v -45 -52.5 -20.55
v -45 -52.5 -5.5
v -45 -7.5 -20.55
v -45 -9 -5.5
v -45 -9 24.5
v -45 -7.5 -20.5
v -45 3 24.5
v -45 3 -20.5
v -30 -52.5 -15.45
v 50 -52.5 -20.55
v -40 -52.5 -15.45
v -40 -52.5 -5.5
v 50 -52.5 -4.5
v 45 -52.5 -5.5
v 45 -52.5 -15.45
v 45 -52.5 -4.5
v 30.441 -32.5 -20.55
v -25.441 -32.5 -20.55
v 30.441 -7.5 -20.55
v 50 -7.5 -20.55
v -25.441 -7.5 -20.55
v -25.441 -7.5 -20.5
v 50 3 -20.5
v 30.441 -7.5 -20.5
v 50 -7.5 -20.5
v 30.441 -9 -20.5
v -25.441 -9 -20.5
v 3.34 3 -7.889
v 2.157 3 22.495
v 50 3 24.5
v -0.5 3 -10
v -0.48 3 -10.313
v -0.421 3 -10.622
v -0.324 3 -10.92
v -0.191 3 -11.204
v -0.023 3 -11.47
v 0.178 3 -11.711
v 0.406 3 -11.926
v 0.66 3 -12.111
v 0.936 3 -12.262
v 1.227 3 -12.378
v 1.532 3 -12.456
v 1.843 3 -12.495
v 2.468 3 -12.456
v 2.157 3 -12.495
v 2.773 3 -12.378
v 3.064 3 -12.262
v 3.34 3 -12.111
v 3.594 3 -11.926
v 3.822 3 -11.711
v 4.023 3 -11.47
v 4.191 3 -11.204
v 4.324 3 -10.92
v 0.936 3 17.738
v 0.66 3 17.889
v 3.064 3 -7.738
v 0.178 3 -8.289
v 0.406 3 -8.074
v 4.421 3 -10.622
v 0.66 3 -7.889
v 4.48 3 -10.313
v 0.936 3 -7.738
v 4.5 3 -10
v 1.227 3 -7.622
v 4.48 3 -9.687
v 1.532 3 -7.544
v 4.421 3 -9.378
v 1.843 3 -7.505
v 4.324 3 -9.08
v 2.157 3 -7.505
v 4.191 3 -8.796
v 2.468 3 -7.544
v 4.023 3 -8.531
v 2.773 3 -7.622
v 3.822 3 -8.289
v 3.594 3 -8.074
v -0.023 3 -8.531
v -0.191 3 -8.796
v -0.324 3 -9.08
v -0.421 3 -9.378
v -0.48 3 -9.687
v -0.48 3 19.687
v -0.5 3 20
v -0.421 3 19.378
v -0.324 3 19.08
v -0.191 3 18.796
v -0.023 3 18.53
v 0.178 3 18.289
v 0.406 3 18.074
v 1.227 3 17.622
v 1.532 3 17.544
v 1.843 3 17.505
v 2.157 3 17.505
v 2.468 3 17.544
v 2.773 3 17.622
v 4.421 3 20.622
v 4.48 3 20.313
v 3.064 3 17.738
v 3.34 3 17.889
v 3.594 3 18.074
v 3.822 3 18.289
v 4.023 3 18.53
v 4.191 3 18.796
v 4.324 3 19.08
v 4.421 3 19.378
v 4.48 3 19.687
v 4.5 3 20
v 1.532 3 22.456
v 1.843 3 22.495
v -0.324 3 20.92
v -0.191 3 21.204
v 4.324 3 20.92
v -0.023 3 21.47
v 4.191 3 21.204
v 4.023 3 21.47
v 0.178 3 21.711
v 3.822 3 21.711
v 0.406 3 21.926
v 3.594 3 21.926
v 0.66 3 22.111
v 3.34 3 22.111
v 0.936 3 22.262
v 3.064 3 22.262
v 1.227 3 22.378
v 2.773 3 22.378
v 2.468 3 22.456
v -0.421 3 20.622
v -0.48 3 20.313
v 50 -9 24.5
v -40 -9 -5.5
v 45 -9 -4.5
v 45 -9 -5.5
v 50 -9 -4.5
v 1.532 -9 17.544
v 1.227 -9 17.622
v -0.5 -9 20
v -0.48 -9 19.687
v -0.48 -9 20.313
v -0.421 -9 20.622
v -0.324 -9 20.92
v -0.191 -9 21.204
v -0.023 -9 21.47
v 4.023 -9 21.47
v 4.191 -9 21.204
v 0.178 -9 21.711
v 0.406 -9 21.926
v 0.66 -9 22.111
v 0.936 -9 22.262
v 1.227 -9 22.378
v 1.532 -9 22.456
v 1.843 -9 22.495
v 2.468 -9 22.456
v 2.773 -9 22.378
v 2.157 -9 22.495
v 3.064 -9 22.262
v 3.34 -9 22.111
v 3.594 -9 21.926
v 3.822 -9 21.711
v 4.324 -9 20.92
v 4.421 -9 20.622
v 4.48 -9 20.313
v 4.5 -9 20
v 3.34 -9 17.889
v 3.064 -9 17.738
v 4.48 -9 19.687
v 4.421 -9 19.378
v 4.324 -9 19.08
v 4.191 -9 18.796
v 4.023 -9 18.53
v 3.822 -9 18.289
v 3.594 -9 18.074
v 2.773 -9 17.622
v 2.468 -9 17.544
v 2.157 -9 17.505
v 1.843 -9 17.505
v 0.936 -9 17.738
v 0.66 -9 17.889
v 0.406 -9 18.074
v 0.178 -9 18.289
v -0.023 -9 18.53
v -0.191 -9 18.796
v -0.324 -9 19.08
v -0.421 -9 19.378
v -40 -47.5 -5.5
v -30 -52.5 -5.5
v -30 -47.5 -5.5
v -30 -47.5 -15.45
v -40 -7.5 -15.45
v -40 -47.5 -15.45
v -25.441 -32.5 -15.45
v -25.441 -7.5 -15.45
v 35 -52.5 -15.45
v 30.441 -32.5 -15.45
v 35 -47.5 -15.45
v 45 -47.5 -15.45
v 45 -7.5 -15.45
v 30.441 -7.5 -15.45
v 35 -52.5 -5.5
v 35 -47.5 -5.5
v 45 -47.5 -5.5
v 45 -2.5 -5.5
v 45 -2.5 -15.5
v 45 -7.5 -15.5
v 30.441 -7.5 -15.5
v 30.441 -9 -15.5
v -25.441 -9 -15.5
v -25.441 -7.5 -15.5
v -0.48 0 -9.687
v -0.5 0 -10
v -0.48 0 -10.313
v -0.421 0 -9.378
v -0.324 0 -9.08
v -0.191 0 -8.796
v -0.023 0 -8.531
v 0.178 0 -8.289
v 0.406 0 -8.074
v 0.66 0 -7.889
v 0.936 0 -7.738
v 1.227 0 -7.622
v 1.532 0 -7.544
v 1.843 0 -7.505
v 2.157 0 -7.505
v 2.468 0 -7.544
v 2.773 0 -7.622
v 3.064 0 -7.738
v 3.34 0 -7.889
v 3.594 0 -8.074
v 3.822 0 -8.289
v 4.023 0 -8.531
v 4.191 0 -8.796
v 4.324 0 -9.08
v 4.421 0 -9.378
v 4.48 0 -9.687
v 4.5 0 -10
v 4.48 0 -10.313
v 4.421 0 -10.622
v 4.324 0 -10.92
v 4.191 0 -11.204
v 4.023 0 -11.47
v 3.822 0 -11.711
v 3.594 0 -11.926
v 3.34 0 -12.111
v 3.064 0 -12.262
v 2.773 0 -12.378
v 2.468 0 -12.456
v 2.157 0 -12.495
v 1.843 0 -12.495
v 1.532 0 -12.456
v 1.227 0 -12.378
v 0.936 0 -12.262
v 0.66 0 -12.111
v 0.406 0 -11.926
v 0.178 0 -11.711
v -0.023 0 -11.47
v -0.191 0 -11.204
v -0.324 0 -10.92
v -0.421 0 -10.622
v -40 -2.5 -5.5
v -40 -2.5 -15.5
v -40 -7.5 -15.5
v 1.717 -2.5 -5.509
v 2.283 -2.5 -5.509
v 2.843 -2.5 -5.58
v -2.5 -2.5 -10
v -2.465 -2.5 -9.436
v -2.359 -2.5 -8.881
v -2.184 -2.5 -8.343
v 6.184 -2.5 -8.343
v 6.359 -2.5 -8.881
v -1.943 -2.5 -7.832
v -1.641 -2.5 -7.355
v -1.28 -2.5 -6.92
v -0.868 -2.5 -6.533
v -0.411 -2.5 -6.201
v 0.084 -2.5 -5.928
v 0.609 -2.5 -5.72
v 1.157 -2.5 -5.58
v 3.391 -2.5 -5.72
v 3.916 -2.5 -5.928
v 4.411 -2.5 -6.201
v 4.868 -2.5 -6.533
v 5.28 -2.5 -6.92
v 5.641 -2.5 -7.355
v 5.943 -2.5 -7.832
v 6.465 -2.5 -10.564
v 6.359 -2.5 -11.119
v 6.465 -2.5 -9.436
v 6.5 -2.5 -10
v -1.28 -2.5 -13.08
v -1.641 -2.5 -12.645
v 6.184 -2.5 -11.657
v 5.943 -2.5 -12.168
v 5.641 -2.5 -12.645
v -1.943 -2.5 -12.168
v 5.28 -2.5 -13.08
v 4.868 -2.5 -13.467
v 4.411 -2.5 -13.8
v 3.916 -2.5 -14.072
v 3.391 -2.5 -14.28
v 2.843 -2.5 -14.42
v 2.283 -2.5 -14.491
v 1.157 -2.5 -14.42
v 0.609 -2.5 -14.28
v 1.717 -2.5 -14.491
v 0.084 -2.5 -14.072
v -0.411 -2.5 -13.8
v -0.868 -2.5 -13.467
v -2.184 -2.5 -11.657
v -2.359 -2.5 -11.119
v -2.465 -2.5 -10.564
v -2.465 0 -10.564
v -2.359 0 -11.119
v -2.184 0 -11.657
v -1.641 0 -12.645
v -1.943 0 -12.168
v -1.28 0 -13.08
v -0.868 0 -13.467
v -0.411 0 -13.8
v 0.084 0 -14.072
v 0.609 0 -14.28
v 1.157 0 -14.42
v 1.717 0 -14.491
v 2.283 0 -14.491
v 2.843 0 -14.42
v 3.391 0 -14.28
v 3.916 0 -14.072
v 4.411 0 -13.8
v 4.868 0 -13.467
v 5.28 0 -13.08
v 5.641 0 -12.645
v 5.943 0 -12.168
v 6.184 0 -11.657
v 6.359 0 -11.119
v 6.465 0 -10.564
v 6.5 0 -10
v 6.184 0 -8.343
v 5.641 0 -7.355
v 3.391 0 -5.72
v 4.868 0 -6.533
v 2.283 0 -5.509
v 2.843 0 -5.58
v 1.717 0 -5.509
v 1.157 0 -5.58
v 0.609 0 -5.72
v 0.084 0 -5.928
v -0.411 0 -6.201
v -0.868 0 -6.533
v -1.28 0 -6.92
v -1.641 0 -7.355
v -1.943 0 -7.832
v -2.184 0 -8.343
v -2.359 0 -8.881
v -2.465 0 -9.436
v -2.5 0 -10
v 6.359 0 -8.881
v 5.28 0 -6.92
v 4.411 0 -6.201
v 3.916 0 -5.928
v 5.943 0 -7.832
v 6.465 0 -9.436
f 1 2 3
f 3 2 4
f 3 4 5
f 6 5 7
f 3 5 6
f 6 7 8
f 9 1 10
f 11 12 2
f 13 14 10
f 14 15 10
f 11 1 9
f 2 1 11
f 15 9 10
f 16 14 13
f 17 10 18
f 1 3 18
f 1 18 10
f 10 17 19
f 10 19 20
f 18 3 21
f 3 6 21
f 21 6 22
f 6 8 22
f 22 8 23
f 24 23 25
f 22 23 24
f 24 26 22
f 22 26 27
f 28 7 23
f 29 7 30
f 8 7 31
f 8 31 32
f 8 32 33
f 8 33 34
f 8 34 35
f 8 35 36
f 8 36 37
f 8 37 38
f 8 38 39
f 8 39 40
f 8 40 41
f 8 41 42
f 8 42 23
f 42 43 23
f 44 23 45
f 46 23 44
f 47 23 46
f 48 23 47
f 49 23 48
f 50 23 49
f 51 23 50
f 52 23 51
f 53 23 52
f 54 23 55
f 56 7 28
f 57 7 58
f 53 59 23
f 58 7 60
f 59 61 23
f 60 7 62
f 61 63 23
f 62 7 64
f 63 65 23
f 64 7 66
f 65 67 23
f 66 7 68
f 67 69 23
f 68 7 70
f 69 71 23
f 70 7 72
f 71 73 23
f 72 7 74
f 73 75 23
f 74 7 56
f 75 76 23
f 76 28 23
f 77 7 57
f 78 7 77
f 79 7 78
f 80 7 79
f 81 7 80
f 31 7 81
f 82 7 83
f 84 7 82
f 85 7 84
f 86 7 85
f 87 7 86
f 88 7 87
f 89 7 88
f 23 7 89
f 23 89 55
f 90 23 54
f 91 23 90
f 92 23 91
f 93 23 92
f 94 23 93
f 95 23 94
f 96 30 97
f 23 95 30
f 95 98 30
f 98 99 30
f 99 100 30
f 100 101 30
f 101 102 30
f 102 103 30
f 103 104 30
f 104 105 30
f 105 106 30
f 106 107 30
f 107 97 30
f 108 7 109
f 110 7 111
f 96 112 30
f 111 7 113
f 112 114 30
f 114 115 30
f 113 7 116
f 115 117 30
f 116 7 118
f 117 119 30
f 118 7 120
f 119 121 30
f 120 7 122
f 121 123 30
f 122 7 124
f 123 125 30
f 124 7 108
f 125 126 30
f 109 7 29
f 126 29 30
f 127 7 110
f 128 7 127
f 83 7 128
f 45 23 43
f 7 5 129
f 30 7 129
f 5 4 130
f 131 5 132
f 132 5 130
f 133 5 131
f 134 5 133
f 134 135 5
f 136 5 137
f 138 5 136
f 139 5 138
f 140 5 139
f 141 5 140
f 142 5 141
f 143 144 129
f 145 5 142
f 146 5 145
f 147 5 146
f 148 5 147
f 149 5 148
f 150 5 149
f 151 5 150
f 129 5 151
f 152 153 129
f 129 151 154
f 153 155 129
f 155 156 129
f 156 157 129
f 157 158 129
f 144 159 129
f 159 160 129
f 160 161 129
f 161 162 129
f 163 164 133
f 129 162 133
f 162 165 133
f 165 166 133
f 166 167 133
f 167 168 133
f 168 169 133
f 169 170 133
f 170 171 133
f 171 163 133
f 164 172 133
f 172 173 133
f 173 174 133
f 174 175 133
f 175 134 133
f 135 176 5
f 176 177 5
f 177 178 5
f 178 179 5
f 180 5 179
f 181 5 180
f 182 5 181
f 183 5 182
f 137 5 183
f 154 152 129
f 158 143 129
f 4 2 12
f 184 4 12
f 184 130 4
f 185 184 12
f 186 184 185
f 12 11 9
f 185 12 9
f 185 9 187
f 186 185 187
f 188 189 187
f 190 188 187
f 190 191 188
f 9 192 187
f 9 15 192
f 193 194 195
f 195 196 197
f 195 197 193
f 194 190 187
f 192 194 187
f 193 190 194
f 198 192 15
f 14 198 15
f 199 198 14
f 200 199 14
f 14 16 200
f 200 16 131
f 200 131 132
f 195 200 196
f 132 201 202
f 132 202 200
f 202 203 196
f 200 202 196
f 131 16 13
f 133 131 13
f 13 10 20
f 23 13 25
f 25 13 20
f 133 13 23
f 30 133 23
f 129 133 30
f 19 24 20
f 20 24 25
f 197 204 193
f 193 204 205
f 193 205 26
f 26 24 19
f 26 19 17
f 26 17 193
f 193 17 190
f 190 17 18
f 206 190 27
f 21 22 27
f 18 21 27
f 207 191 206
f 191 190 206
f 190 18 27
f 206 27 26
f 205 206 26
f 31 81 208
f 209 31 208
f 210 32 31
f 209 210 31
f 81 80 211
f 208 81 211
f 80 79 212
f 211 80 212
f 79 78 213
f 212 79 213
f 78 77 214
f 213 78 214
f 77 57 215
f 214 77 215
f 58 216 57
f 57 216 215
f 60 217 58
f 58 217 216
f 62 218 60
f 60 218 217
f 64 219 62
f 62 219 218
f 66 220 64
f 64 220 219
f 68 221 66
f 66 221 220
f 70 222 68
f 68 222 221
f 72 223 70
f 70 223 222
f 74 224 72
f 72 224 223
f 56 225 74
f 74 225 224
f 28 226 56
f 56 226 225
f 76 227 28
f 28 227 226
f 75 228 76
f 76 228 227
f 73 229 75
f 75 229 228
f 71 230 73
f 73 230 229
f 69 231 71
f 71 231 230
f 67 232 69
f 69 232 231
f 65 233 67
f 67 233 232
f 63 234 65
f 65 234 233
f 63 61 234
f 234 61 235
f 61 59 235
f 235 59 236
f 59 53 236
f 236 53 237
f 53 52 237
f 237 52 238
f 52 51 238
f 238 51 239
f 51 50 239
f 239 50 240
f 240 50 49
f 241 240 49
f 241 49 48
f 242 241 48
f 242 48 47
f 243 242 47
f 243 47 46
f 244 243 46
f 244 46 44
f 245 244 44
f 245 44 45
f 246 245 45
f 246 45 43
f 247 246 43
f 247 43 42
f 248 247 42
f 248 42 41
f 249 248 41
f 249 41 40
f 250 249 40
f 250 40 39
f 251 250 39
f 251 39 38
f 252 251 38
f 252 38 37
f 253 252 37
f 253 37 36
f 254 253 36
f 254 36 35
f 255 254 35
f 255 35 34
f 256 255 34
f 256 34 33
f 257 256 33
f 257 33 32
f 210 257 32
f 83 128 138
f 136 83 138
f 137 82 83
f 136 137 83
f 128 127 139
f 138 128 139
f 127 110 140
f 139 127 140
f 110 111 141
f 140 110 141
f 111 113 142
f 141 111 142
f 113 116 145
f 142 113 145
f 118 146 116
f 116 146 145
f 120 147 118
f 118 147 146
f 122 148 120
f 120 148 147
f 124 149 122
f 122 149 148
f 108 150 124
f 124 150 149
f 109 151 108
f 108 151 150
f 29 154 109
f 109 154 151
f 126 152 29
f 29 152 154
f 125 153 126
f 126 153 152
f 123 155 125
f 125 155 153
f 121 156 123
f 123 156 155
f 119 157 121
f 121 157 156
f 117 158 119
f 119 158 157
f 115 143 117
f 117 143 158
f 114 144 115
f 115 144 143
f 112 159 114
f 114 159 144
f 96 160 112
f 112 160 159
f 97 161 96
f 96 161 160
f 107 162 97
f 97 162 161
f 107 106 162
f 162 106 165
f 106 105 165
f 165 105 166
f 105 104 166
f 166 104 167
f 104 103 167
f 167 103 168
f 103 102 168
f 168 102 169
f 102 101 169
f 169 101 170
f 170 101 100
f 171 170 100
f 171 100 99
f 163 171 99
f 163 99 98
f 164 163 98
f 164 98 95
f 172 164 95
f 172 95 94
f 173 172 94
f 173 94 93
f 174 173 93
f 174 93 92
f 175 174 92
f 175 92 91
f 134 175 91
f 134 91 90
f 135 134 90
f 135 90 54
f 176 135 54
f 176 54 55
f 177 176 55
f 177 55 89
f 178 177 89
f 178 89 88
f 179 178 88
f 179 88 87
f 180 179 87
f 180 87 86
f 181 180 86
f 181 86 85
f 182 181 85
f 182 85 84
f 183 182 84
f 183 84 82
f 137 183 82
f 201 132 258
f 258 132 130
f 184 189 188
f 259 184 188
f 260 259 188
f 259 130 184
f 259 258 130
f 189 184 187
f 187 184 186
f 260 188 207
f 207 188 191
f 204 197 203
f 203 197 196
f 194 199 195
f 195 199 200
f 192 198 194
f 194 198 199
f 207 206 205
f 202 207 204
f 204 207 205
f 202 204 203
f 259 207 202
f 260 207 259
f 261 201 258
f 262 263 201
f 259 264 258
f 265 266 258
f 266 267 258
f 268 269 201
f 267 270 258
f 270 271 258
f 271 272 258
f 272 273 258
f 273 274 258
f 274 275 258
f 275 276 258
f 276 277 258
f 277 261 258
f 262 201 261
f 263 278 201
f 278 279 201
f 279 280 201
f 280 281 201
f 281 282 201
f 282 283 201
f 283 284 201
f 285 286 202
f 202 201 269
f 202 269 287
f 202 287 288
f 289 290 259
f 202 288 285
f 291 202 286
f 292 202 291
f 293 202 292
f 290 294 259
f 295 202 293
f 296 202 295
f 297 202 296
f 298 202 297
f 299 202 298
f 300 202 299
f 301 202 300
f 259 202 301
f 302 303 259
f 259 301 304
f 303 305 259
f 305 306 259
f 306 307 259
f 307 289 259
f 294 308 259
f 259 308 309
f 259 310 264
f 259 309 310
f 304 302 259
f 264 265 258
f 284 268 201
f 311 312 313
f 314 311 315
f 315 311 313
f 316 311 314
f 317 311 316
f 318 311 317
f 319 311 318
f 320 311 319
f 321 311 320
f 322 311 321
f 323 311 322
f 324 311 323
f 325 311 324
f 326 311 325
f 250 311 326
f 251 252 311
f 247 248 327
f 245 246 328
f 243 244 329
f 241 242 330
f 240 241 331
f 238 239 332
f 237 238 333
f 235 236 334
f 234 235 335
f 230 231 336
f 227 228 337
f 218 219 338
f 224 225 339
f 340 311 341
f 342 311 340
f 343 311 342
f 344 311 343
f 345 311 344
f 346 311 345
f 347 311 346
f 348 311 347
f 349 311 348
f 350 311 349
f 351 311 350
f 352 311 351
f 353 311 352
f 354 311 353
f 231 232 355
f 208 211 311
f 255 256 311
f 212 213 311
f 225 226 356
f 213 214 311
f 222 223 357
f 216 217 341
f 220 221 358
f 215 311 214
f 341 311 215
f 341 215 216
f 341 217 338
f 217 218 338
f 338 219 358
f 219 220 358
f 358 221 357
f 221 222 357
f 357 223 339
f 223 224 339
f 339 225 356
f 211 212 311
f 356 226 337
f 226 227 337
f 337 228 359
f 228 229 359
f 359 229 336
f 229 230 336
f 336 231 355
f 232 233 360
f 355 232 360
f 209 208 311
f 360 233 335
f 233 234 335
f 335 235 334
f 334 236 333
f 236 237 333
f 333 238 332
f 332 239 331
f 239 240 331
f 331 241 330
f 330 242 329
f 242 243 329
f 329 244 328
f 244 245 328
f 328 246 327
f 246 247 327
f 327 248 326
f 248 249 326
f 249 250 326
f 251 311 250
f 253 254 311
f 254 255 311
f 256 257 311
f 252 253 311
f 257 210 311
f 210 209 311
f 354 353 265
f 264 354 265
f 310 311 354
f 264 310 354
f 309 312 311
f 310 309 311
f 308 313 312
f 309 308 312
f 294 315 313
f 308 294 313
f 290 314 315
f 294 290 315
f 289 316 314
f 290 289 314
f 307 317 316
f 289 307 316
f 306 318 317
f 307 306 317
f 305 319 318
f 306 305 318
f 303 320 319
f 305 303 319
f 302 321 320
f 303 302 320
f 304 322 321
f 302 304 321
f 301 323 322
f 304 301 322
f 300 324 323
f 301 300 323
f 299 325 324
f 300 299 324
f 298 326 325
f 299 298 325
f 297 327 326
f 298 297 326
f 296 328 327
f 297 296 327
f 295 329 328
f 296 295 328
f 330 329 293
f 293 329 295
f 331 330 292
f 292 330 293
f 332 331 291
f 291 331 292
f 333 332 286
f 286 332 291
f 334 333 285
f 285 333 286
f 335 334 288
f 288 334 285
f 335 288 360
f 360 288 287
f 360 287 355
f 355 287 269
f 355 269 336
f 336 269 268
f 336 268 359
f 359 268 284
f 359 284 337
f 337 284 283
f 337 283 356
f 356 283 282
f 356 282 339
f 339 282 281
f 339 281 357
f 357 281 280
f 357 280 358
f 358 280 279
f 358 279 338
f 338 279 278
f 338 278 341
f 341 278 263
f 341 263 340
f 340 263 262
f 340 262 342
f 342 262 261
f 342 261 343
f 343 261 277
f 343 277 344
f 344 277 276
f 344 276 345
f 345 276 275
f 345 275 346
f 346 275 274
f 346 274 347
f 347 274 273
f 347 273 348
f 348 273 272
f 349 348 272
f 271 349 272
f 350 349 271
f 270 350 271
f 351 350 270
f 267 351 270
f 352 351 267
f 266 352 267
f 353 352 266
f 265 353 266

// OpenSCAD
// file: ../bearing.scad
module bearing(in_rad=2.5, out_rad=8){
	//color("blue")
	difference() {
		cylinder(h=7,r=out_rad,center=true, $fn=100);
		cylinder(h=8,r=in_rad,center=true, $fn=100);
	}
}
// file: ../coupler.scad
//L=length, R=Total Radius, c1=radius of 1st coupler, c2=radius of 2nd coupler

module coupler(dim, c1, c2) {
	difference(){
		difference(){
			cylinder(h=dim[0], r=dim[1], center=true, $fn=100);
			translate([0,0,-(dim[0]-dim[0]/2.1)]) cylinder(h=dim[0], r=c1, center=true, $fn=100);
		}
		translate([0,0,dim[0]-dim[0]/2]) cylinder(h=dim[0], r=c2, center=true, $fn=100);
	}
}
// file: ../../pinhole_stage/z_axis.scad
use <../components/TBS_5x2.scad>
use <../components/5v_stepper_motor.scad>
use <../components/coupler.scad>
use <../components/bearing.scad>
use <../threadless_ball_screws/TBS_5x2_adjustable.scad>

//Variables
dr_rod_length = 87;
st_rod_length = 120;
rod_radius = 2.5;
st_rod_radius = 9.53/2;
rod_spacing = 40;
base_width = 200;
base_thickness = 15;
in_base_width = base_width - (2 * base_thickness);
base_length = 130;
in_base_length = 80;
base_depth = 50;
in_base_depth = 100;
bearing_od = 16;
lin_bearing_od = 16.1;
coupler_dim=[25,9];
c_1=2.5; //coupler radius 
c_2=2.5; //coupler radius 2
mount_position = 45;

//Z_AXIS_TRANS_STAGE();

//Assembly
module Z_AXIS_TRANS_STAGE() {
	rotate([0,90,90]) translate([0,rod_spacing,4.5]) smooth_rod(st_rod_length, st_rod_radius);
	rotate([0,90,90]) translate([0,-rod_spacing,4.5]) smooth_rod(st_rod_length, st_rod_radius);
	rotate([0,90,90]) translate([0,0,4.5]) smooth_rod(dr_rod_length, rod_radius);
	%rotate([0,90,90]) translate([0,0,-40]) coupler(coupler_dim,c_1,c_2);
	rotate([0,180,0]) translate([0,-55,0]) stepper_motor();
	%rotate([90,0,0])  translate([0,0,-45]) bearing(2.5,8);
	z_axis_base();
	translate([0,4.5,0]) rotate([-90,-90,0]) tbs_adj();
}


//Modules
module smooth_rod(Length,Radius) {
	cylinder(h=Length,r=Radius,center=true, $fn=100);
}

module tbs() {
	difference() {
		Base();
		bearingMounts();
	}
}

module tbs_horz_axis() {
	difference() {
		difference() {
			Base();
			bearingMounts();
		}
		translate([0,35,-8]) rotate([90,90,0]) cylinder(h=40,r=2.5,center=true,$fn=100);
	}
}

module tbs_z_axis() {
	translate([0,0,-7.5]) rotate([0,0,-90])difference() {//threadless ball screw
		Base();
		bearingMounts();
	}
}

module z_axis_base() {

	difference() {
		difference() {
			translate([0,-5,-10]) cube([base_width,base_length,base_depth],center=true);
			translate([0,0,10]) cube([in_base_width,in_base_length,in_base_depth],center=true);
		}
		translate([0,-65,40]) cube([29,40,56],center=true);
		translate([0,-35,10]) rotate([90,0,0])  cylinder(h=65,r=14.25,$fn=100);
		translate([0,-44,20]) color("blue") cube([60,25,56], center=true);//cutout for motor seat
		translate([-rod_spacing,-35,0]) rotate([90,0,0])  cylinder(h=65,r=st_rod_radius,$fn=100);
		translate([rod_spacing,-35,0]) rotate([90,0,0])  cylinder(h=65,r=st_rod_radius,$fn=100);
		translate([-rod_spacing,100,0]) rotate([90,0,0])  cylinder(h=65,r=st_rod_radius,$fn=100);
		translate([rod_spacing,100,0]) rotate([90,0,0])  cylinder(h=65,r=st_rod_radius,$fn=100);
		translate([0,100,0]) rotate([90,0,0])  cylinder(h=65,r=8.2,$fn=100);
		//static rod mount 1 (motor side)
		translate([rod_spacing+10,-45,12]) cube([4,12,12],center=true);
		translate([rod_spacing+13,-45,11]) rotate([0,90,0]) cylinder(h=50,r=2.5,center=true,$fn=50);
		translate([rod_spacing,-43,12]) cube([1.5,100,20],center=true);
		//static rod mount 2 (motor side)
		translate([-(rod_spacing+10),-45,12]) cube([4,12,12],center=true);
		translate([-(rod_spacing+13),-45,11]) rotate([0,90,0]) cylinder(h=50,r=2.5,center=true,$fn=50);
		translate([-rod_spacing,-43,12]) cube([1.5,100,20],center=true);
		//static rod mount 3 (opposite motor side)
		translate([(rod_spacing+10),45,12]) cube([4,12,12],center=true);
		translate([rod_spacing,43,12]) cube([1.5,100,20],center=true);
		translate([(rod_spacing+13),45,11]) rotate([0,90,0]) cylinder(h=50,r=2.5,center=true,$fn=50);
		translate([(rod_spacing-20),45,11]) cube([26,11,11],center=true);
		//static rod mount 4 (opposite motor side)
		translate([-(rod_spacing+10),45,12]) cube([4,12,12],center=true);
		translate([-rod_spacing,43,12]) cube([1.5,100,20],center=true);
		translate([-(rod_spacing+13),45,11]) rotate([0,90,0]) cylinder(h=50,r=2.5,center=true,$fn=50);
		translate([-(rod_spacing-20),45,11]) cube([26,11,11],center=true);
	}
}
// file: ../../pinhole_stage/xy_axis.scad
include <z_axis.scad>;
include <../components/5v_stepper_motor.scad>;
vert_drive_rod_length = 105;
vert_static_rod_length = 115;
horz_rod_length = 80;
static_rod_radius = 9.54/2;
static_vert_rod_loc = 0;

/*
difference() {
	Z_AXIS_TRANS_STAGE();
	color("cyan") translate([-mount_position-10,0,20]) smooth_rod(10, rod_radius);
}
XY_AXIS_TRANS_STAGE();
	union() {
		tbs_mount_z_axis();
		frame();
	}
*/

module tbs_mount_z_axis() {
	difference() {
			translate([0,0,40]) cube([20,25,25],center=true);
			translate([static_vert_rod_loc,0,80]) smooth_rod(vert_static_rod_length, static_rod_radius);
	}
	difference() {
		union() {
			translate([-30,-12.5,-22.5]) cube([60,20,5]);
			translate([-30,-12.5,23.5]) cube([60,25,5]);
		}
		translate([17.5,0,0]) cylinder(h=100,r=3,center=true,$fn=50);
		translate([-17.5,0,0]) cylinder(h=100,r=3,center=true,$fn=50);
	}
}

module XY_AXIS_TRANS_STAGE() {
	vert_stage();
	//color("grey") translate([0,0,97]) rotate([0,90,0]) smooth_rod(horz_rod_length, rod_radius);
	//translate([0,0,130]) pinhole();
	//translate([-40,0,75]) horz_stage();
	//translate([10,37.5,75]) rotate([0,90,0]) tbs_pinhole_axis();
	//translate([10,37.5,75]) rotate([0,90,0]) tbs_adj();
	//translate([17.5,37.5,75]) rotate([0,90,0]) horz_drive_shaft_bearing(16,2);
	//translate([-33.5,37.5,75]) rotate([0,180,-90]) stepper_motor(shaft=2.5,radius=14,width=19);
	//translate([-17,37.5,75]) rotate([0,90,0]) coupler(coupler_dim, 2.5,2.5);
}

module vert_stage(){
	color("grey") translate([-40,0,130]) rotate([-90,0,180])  stepper_motor();

	//coupler and rods
	%translate([-40,0,115]) coupler(coupler_dim, 2.5,2.5);
	//color("grey") translate([static_vert_rod_loc,0,80]) smooth_rod(vert_static_rod_length, static_rod_radius);
	color("grey") translate([-40,0,70.5]) smooth_rod(vert_drive_rod_length, rod_radius);
	translate([-40,0,85]) rotate([0,0,90]) tbs_adj();
	union() {
		frame();
	}
}

module frame() {
	top_pos = 120;
	tbs_mount_z_axis();
	union() {
		difference() {//top frame
			translate([-12.5,5,top_pos]) cube([135,35,20],center=true);
			translate([-40,0,top_pos]) cylinder(r=10,h=25,center=true,$fn=100); //motor shaft hole
			translate([static_vert_rod_loc,0,100]) smooth_rod(220, static_rod_radius); //static shaft hole
			//screw holes
			translate([-23.5,13,top_pos-10]) cube([7,20,30],center=true);//screw hole +y side
			translate([-23.5,8,top_pos]) cylinder(r=2,h=25,center=true,$fn=100); 
			translate([-56.5,13,top_pos-10]) cube([7,20,30],center=true);//screw hole +y side
			translate([-56.5,8,top_pos]) cylinder(r=2,h=25,center=true,$fn=100); 
		}
		
		//bottom frame
		translate([0,10,0]) rotate([-90,0,0]) union() {
			//-x mount
			difference() {
				rotate([0,0,180]) tbs_side_support();
				translate([85,-50,-30]) mirror([1,0,0]) cube([30,100,30]);
			}

			//+x mount
			difference() {
				translate([0,0,-30]) rotate([180,0,0])tbs_side_support();
				translate([-40,-20,-10]) rotate([90,0,0]) cylinder(h=5.25,r=lin_bearing_od/2,center=true,$fn=100);
			}
			%translate([-40,-20,-10]) rotate([90,0,0]) bearing(2.5,8);
			
		}

		//Side support beams
		translate([22.5,-12.5,0]) cube([32.5,15,top_pos+10]);
		translate([-80,-12.5,0]) cube([15,15,top_pos+10]);
	}

	//private modules
	module tbs_side_support() {
		difference() {
			translate([-45.5,10,-15]) cube([45, 65, 15],center=true);
			translate([-rod_spacing,0,0]) cylinder(h=100,r=lin_bearing_od/2,center=true,$fn=100);
		}
		//translate([-mount_position-2.5,0,-7.5]) cube([50,45,30],center=true);
		translate([-70,0,-15]) cube([20,45,15],center=true);
	}
}

module pinhole() {
	difference() {
		cube([40,10,40],center=true);
		rotate([90,0,0]) cylinder(h=20,r=1,center=true,$fn=100);
	}
}

module horz_stage(height=27.5) {
	lin_bearing_or = lin_bearing_od/2;
	union() {
		difference() {//Motor Seat
			difference() {
				translate([-10,35,5]) cube([30,50,height],center=true);
				translate([6.5,37.5,0]) rotate([0,180,-90]) stepper_motor(shaft=2.5,radius=14.5,width=34);
				translate([-5,37.5,17.5]) cube([30,29,20],center=true);
				translate([-10,23,12.5]) cube([20,10,15],center=true);
				translate([-10,52,12.5]) cube([20,10,15],center=true);
				translate([5,21,8]) rotate([0,90,0]) cylinder(h=10,r=2,center=true,$fn=100);
				translate([5,54,8]) rotate([0,90,0]) cylinder(h=10,r=2,center=true,$fn=100);
			}
		}
		difference() {//Linear Bearing Shaft
			difference() {
				translate([-5,0,5]) cube([40,30,height],center=true);
				cylinder(h=90,r=lin_bearing_or,center=true,$fn=100);
				translate([50,0,2]) rotate([0,90,0]) smooth_rod(horz_rod_length, static_rod_radius);
			}
		}
	}
}

module tbs_pinhole_axis() {
	lin_bearing_or=lin_bearing_od/2;
	union() {
		//tbs();
		difference() {
			translate([3,-45,-7.5]) cube([40,45,15],center=true);
			translate([-3,-37.5,-10]) cylinder(h=30,r=lin_bearing_or,center=true,$fn=100);
		}
	}
}

module horz_drive_shaft_bearing(bearing_od, screw_size) {
	screw_rad = screw_size/2;
	mount1_pos = 15;
	mount2_pos = 20;
	union() {
		difference() {//Bearing Case
			cube([20,30,10],center=true);
			cylinder(h=40,r=8,center=true,$fn=100);
		}
		difference() {//Mount 1
			
			translate([0,-12.5,mount1_pos]) cube([20,5,30],center=true);
			translate([0,-12.5,mount1_pos+10]) rotate([90,0,0]) cylinder(h=10,r=screw_rad,center=true,$fn=100);
		}
		difference() {//Mount 2
			translate([0,-mount2_pos,-2.5]) cube([20,20,5],center=true);
			translate([0,-mount2_pos-5,0]) cylinder(h=10,r=screw_rad,center=true,$fn=100);
		}
	}
	%bearing(2.5,bearing_od/2);
}
// file: ../5v_stepper_motor.scad
module stepper_motor(shaft=2.5,radius=14,width=19) {
	translate([0,-9.5,-8]) stepper_motor_model(shaft,radius,width);
}

module stepper_motor_model(shaft=2.5, radius=14, width=19) {
	color("yellow") translate([0,10,8]) rotate([0,90,90]) motor_shaft(shaft, (shaft*2)-1);
	screw_hole_pos = radius;
	union(){
		rotate([0,90,90]) cylinder(h=width, r=radius, center=true, $fn=100);
		translate([screw_hole_pos,(width-1)/2,0]) rotate([90,0,180]) motor_screw_hole();
		translate([-screw_hole_pos,(width-1)/2,0]) rotate([90,180,180]) motor_screw_hole();
		translate([0,0,-radius]) cube([20,15,width], center=true);
	}

	module motor_shaft(shaft_radius,base_radius) {
		union(){
			cylinder(h=10,r=shaft_radius,center=10,$fn=100);
			cylinder(h=1.5,r=base_radius,center=true,$fn=100);
		}
	}

	module motor_screw_hole(inner_rad=2, outer_rad=3.5, thickness=1) {
		translate([-2.5,0,0])
		union(){
			difference() {
				cylinder(h=thickness,r=outer_rad,center=true, $fn=100);
				cylinder(h=thickness+2,r=inner_rad,center=true, $fn=100);
			}
			difference() {
				translate([1,0,0]) cube([outer_rad,outer_rad*2,thickness], center=true);
				cylinder(h=thickness+2,r=inner_rad,center=true, $fn=100);
			}
		}
	}
}

module screw_hole(inner_rad=1,outer_rad=1.75,thickness=1) {
	union(){
		difference() {
			cylinder(h=thickness,r=outer_rad,center=true, $fn=100);
			cylinder(h=thickness+2,r=inner_rad,center=true, $fn=100);
		}
		difference() {
			translate([1,0,0]) cube([outer_rad,outer_rad*2,thickness], center=true);
			cylinder(h=thickness+2,r=inner_rad,center=true, $fn=100);
		}
	}
}
// main file
use <../../sample_stage/slide_translation1.scad>

translate([0,20,0]) sample_arm();
